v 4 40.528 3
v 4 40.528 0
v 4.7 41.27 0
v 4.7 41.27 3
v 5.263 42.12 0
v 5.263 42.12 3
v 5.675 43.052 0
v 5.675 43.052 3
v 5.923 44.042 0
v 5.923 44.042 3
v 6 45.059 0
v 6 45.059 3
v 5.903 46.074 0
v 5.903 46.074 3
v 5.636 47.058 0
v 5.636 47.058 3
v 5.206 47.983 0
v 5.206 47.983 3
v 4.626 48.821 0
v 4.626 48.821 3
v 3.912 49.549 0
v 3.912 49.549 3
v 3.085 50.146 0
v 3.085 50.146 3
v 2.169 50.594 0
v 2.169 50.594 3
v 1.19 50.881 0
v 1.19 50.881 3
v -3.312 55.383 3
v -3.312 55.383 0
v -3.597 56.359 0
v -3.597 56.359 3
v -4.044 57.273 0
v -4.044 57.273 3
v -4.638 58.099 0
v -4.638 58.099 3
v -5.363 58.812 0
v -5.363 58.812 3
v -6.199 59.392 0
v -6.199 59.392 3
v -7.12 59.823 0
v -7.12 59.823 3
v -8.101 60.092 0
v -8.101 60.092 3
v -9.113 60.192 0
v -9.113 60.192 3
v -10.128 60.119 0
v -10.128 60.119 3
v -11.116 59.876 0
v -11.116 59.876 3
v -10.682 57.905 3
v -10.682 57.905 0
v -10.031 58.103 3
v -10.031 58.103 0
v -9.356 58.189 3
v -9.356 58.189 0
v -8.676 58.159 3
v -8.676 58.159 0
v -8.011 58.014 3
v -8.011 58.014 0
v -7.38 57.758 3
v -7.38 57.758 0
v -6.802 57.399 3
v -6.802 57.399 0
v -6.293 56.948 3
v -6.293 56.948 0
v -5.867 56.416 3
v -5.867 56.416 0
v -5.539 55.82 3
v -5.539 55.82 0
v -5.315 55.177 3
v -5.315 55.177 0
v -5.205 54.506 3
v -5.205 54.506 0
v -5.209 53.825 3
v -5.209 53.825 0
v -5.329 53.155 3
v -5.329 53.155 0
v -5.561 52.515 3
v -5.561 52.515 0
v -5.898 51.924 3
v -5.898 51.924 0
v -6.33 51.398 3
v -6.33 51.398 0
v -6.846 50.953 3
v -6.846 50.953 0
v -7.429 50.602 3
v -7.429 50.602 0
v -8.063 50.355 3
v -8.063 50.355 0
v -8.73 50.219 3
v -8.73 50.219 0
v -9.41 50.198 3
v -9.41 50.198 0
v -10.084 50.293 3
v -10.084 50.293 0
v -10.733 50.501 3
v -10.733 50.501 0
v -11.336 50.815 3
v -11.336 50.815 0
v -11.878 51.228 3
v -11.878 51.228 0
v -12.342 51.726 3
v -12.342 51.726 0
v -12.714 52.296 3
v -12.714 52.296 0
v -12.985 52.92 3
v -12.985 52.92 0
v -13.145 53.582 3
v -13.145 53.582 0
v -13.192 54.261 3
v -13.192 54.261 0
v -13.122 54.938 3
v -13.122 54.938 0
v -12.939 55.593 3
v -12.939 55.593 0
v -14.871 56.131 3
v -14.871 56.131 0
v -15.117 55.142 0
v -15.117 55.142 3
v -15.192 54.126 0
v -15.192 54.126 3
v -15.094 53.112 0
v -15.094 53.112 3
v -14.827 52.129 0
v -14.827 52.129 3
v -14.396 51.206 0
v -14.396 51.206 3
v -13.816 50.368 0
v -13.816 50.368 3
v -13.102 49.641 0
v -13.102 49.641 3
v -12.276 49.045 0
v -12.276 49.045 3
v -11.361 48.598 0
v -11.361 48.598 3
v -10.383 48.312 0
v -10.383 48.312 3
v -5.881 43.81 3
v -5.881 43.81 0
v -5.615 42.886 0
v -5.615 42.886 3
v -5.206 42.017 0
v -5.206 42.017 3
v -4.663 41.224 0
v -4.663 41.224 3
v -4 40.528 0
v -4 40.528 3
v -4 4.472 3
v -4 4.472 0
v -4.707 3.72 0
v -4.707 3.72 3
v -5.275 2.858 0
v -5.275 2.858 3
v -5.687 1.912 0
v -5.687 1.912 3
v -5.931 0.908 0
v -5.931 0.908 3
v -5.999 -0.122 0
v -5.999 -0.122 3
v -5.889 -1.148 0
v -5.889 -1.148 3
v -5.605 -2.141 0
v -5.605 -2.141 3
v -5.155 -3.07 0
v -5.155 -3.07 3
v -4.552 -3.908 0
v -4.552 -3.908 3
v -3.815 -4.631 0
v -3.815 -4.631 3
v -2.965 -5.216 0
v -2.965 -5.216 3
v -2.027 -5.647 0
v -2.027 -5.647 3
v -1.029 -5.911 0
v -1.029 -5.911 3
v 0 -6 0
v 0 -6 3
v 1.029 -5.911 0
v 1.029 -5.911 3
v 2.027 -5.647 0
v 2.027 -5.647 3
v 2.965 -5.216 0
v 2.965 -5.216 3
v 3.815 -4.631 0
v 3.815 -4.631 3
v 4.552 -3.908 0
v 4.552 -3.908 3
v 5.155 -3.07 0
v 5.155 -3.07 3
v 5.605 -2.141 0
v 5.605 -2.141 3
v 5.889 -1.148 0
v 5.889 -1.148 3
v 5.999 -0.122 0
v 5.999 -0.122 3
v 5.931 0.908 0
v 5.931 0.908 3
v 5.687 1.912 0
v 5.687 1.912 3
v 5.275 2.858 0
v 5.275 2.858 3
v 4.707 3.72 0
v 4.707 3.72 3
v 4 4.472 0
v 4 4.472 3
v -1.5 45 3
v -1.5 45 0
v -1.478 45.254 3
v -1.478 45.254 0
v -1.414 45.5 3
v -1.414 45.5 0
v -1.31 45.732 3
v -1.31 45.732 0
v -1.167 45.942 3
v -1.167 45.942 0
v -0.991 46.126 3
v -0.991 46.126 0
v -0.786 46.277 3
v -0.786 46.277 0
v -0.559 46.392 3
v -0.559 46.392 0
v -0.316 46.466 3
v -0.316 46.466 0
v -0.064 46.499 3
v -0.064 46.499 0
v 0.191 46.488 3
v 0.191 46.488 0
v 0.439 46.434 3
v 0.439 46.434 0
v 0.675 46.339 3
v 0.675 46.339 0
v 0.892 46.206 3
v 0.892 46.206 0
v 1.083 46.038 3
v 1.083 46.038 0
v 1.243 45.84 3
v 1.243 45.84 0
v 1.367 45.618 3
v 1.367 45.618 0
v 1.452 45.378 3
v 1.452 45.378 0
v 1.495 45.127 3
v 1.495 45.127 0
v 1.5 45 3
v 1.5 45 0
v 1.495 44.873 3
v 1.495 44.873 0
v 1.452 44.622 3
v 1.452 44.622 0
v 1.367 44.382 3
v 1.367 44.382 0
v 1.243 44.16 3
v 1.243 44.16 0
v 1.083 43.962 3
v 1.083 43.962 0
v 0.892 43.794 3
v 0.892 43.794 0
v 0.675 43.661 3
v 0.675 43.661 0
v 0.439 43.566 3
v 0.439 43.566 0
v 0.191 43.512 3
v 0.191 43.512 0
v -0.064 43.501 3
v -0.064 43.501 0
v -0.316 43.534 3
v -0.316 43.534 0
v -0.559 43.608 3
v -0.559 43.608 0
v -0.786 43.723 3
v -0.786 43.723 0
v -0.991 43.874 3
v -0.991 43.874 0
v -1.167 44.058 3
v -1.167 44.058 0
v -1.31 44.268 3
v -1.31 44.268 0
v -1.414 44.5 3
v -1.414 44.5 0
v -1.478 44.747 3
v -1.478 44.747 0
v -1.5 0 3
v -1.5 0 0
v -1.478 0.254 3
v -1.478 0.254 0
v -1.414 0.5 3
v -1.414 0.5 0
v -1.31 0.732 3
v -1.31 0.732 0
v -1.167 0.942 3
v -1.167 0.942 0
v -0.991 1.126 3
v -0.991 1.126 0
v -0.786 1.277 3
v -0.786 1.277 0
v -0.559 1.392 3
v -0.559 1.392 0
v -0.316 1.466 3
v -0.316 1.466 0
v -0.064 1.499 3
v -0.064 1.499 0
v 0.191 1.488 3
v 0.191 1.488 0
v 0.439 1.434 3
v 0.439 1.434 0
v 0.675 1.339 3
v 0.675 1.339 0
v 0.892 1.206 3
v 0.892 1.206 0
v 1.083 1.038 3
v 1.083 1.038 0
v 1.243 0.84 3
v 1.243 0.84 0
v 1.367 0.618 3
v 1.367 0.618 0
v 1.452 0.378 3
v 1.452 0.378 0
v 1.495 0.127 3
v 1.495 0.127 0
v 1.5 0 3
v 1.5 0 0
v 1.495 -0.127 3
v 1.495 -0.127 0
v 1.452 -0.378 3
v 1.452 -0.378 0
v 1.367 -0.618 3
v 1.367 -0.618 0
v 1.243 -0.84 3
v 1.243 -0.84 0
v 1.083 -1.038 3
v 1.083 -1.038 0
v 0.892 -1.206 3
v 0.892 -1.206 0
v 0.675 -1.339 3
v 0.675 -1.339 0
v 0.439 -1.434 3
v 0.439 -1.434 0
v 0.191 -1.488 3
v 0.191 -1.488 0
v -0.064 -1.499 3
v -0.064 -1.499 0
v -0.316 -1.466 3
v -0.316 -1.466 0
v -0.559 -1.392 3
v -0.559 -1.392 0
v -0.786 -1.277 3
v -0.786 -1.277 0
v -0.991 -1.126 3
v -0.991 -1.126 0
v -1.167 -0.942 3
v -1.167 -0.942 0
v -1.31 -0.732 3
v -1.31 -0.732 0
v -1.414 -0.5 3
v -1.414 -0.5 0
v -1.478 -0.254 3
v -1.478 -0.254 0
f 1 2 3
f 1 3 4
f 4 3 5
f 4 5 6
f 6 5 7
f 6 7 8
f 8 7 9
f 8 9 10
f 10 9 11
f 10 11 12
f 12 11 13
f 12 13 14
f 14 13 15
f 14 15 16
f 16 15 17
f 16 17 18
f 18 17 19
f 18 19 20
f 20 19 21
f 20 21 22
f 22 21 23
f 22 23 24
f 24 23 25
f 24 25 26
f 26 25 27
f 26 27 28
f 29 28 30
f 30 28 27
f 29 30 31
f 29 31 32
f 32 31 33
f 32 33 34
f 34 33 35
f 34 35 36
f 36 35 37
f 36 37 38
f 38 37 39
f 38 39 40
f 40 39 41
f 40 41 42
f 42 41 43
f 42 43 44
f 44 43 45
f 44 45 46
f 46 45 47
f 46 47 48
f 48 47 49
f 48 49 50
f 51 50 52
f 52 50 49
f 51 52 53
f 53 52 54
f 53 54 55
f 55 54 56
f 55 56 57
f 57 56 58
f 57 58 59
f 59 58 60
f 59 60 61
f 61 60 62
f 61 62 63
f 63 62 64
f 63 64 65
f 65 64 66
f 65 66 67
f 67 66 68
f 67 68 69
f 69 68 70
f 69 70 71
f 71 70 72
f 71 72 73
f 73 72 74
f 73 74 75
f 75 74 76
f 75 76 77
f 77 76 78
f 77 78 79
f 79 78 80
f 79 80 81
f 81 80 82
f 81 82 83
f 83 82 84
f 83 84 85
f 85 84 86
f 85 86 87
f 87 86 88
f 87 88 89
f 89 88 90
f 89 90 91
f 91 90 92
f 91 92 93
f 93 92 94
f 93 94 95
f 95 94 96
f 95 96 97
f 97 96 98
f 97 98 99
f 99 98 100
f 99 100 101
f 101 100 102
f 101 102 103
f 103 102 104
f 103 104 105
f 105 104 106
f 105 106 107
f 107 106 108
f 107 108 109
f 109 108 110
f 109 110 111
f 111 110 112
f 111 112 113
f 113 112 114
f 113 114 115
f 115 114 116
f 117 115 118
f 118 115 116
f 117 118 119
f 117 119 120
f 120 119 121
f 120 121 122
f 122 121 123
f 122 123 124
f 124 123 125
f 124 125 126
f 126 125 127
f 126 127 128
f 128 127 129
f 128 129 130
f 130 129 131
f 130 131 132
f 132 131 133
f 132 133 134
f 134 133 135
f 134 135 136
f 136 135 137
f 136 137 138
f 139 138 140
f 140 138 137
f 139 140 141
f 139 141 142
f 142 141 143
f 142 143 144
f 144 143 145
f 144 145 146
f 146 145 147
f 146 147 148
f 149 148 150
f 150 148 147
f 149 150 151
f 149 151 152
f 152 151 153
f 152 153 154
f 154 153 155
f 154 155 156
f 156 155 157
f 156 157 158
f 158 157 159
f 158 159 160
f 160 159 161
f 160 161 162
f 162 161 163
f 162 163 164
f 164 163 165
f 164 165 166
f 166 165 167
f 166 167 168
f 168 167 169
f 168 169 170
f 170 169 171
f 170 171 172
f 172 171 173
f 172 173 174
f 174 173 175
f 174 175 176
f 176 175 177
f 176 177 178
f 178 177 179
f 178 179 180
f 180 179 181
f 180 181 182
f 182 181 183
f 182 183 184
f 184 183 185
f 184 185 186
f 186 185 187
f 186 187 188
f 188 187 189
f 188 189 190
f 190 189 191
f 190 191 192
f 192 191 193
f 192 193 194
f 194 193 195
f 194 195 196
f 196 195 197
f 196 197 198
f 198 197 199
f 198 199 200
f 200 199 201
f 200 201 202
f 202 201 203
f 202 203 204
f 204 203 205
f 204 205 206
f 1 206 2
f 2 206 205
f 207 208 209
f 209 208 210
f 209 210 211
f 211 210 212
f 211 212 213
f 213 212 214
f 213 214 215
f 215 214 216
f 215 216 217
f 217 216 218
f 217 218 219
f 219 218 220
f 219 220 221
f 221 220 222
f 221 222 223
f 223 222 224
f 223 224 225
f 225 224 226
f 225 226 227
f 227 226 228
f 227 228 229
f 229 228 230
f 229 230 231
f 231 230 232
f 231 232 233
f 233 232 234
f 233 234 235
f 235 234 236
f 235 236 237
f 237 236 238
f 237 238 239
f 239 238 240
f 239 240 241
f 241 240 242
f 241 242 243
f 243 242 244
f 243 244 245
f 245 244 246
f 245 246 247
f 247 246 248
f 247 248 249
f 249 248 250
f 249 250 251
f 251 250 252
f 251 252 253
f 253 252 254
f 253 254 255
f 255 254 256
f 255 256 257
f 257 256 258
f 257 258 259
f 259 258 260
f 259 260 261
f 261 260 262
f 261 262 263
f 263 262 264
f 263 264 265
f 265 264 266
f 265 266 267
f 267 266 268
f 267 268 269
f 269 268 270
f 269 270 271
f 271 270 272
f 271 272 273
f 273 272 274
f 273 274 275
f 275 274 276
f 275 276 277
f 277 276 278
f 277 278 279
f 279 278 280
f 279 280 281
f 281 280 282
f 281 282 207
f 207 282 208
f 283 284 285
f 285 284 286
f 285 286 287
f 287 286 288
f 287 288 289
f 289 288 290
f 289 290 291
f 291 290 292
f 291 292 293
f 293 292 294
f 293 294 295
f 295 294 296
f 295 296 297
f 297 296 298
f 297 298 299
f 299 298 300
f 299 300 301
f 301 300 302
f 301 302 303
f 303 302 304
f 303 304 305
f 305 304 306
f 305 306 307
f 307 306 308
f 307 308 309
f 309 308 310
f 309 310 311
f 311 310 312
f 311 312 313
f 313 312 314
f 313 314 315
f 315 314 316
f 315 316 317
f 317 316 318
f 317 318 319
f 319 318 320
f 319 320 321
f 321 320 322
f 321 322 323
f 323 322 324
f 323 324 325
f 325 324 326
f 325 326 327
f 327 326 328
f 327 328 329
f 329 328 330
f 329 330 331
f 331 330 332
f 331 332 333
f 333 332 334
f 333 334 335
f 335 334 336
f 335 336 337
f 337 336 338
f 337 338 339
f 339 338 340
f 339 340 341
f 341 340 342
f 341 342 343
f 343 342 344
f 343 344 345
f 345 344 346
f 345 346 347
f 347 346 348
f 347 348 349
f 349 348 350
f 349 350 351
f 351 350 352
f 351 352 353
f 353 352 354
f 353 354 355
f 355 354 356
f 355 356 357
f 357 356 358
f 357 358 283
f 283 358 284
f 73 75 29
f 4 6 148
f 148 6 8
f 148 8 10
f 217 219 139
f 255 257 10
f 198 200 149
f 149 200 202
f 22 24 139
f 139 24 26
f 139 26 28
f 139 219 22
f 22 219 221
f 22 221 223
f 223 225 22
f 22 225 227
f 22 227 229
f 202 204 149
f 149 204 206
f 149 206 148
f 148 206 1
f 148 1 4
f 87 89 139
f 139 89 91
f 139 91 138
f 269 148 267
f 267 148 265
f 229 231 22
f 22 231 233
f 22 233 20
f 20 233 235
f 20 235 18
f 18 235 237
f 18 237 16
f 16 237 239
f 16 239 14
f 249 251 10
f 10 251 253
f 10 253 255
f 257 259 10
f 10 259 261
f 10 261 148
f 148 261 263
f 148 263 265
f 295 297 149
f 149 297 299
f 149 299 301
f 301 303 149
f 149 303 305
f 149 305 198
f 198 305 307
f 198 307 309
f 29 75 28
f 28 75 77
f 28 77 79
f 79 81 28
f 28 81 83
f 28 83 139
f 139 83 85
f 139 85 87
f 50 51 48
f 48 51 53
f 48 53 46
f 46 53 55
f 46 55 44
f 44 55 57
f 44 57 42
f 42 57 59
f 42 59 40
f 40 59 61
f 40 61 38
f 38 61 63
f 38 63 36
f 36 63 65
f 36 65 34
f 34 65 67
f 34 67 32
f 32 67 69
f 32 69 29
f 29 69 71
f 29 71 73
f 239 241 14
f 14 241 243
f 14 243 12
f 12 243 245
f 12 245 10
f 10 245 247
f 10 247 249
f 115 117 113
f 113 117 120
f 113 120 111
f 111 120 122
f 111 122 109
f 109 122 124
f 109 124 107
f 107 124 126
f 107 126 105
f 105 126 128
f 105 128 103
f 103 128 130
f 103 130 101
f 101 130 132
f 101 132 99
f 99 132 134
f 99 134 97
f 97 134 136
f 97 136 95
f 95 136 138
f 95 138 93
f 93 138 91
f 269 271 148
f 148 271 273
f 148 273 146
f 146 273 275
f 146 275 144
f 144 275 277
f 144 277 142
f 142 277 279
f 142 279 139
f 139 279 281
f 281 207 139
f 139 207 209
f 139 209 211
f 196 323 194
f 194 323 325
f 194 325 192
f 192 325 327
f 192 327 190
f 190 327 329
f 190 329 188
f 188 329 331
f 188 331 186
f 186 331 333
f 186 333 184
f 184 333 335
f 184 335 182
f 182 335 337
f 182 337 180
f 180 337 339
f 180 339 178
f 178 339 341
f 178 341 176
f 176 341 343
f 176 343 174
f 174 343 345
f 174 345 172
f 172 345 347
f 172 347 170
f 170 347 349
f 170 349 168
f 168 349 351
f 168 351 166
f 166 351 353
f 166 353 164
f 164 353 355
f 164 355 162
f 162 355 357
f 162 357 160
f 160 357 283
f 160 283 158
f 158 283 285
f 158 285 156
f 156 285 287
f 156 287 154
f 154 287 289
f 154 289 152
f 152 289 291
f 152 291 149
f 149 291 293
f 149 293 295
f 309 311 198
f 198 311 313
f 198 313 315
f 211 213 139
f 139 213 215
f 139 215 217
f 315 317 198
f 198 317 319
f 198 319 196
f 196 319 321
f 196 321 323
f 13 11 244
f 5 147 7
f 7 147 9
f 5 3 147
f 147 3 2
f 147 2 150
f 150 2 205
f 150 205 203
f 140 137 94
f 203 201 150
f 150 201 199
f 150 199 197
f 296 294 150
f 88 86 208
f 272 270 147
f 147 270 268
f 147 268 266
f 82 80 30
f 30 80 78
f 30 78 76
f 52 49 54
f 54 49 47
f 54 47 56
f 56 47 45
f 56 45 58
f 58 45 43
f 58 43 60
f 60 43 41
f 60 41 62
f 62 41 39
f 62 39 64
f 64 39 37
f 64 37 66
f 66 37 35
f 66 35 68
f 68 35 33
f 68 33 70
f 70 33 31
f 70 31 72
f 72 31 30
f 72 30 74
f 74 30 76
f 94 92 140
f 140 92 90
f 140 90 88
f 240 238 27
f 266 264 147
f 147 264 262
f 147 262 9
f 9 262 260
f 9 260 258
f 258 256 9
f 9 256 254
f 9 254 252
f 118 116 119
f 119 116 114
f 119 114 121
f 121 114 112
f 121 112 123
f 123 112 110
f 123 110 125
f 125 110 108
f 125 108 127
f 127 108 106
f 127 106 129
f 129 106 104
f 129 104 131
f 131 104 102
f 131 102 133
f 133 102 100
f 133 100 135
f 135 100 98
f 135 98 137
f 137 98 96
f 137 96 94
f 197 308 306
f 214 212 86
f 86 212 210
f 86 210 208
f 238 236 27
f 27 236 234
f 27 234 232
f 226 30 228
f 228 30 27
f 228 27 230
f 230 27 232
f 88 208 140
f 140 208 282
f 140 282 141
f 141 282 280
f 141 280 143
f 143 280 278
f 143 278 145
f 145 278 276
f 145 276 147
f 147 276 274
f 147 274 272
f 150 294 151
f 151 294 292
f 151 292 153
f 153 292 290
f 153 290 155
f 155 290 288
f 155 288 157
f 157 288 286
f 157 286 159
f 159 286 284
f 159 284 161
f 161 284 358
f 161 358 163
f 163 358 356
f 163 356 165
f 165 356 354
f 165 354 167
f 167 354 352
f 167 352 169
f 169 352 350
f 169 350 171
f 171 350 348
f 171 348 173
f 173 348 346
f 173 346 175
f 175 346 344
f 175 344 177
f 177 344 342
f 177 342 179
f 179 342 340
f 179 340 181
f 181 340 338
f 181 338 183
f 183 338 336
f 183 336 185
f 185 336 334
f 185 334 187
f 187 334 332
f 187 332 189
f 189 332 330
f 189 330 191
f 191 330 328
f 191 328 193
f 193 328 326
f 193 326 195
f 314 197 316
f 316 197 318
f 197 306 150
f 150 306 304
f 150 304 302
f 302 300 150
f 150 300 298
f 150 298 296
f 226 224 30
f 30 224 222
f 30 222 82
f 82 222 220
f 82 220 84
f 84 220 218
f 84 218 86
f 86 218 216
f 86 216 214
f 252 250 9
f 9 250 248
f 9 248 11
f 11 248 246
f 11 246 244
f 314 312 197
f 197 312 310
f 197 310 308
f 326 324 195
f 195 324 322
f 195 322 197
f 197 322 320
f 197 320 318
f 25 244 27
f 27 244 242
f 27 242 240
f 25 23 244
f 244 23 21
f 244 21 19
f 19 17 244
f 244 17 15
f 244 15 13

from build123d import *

# Parameters (mm, degrees)
ESQUISSE1_R        = 6
ESQUISSE1_R_2      = 1.5
BOSS_EXTRU_1_DEPTH = 3


with BuildPart() as part:
    # Esquisse1 → Boss.-Extru.1 (new body)
    with BuildSketch(Plane.XY):
        with Locations((0, 45)):
            Circle(ESQUISSE1_R)
        with Locations((0, 45)):
            Circle(ESQUISSE1_R_2, mode=Mode.SUBTRACT)
        with BuildLine():
            Line((4, 4.472135955), (4, 40.527864045))
            ThreePointArc((4, 40.527864045), (0, 39), (-4, 40.527864045))
            Line((-4, 40.527864045), (-4, 4.472135955))
            ThreePointArc((-4, 4.472135955), (0, 6), (4, 4.472135955))
        make_face()
        Circle(ESQUISSE1_R)
        Circle(ESQUISSE1_R_2, mode=Mode.SUBTRACT)
        with BuildLine():
            Line((-10.382714181, 48.31164637), (-5.880741786, 43.809673974))
            ThreePointArc((-5.880741786, 43.809673974), (-4.242640687, 49.242640687), (1.190326026, 50.880741786))
            Line((1.190326026, 50.880741786), (-3.31164637, 55.382714181))
            ThreePointArc((-3.31164637, 55.382714181), (-4.949747468, 49.949747468), (-10.382714181, 48.31164637))
        make_face()
        with BuildLine():
            ThreePointArc((-12.939033763, 55.593333084), (-6.330461198, 51.397862419), (-10.682211275, 57.904587917))
            Line((-10.682211275, 57.904587917), (-11.115778297, 59.875747229))
            ThreePointArc((-11.115778297, 59.875747229), (-4.955475233, 49.944027426), (-14.870536711, 56.131106542))
            Line((-14.870536711, 56.131106542), (-12.939033763, 55.593333084))
        make_face()
    extrude(amount=BOSS_EXTRU_1_DEPTH)


solid = part.part
